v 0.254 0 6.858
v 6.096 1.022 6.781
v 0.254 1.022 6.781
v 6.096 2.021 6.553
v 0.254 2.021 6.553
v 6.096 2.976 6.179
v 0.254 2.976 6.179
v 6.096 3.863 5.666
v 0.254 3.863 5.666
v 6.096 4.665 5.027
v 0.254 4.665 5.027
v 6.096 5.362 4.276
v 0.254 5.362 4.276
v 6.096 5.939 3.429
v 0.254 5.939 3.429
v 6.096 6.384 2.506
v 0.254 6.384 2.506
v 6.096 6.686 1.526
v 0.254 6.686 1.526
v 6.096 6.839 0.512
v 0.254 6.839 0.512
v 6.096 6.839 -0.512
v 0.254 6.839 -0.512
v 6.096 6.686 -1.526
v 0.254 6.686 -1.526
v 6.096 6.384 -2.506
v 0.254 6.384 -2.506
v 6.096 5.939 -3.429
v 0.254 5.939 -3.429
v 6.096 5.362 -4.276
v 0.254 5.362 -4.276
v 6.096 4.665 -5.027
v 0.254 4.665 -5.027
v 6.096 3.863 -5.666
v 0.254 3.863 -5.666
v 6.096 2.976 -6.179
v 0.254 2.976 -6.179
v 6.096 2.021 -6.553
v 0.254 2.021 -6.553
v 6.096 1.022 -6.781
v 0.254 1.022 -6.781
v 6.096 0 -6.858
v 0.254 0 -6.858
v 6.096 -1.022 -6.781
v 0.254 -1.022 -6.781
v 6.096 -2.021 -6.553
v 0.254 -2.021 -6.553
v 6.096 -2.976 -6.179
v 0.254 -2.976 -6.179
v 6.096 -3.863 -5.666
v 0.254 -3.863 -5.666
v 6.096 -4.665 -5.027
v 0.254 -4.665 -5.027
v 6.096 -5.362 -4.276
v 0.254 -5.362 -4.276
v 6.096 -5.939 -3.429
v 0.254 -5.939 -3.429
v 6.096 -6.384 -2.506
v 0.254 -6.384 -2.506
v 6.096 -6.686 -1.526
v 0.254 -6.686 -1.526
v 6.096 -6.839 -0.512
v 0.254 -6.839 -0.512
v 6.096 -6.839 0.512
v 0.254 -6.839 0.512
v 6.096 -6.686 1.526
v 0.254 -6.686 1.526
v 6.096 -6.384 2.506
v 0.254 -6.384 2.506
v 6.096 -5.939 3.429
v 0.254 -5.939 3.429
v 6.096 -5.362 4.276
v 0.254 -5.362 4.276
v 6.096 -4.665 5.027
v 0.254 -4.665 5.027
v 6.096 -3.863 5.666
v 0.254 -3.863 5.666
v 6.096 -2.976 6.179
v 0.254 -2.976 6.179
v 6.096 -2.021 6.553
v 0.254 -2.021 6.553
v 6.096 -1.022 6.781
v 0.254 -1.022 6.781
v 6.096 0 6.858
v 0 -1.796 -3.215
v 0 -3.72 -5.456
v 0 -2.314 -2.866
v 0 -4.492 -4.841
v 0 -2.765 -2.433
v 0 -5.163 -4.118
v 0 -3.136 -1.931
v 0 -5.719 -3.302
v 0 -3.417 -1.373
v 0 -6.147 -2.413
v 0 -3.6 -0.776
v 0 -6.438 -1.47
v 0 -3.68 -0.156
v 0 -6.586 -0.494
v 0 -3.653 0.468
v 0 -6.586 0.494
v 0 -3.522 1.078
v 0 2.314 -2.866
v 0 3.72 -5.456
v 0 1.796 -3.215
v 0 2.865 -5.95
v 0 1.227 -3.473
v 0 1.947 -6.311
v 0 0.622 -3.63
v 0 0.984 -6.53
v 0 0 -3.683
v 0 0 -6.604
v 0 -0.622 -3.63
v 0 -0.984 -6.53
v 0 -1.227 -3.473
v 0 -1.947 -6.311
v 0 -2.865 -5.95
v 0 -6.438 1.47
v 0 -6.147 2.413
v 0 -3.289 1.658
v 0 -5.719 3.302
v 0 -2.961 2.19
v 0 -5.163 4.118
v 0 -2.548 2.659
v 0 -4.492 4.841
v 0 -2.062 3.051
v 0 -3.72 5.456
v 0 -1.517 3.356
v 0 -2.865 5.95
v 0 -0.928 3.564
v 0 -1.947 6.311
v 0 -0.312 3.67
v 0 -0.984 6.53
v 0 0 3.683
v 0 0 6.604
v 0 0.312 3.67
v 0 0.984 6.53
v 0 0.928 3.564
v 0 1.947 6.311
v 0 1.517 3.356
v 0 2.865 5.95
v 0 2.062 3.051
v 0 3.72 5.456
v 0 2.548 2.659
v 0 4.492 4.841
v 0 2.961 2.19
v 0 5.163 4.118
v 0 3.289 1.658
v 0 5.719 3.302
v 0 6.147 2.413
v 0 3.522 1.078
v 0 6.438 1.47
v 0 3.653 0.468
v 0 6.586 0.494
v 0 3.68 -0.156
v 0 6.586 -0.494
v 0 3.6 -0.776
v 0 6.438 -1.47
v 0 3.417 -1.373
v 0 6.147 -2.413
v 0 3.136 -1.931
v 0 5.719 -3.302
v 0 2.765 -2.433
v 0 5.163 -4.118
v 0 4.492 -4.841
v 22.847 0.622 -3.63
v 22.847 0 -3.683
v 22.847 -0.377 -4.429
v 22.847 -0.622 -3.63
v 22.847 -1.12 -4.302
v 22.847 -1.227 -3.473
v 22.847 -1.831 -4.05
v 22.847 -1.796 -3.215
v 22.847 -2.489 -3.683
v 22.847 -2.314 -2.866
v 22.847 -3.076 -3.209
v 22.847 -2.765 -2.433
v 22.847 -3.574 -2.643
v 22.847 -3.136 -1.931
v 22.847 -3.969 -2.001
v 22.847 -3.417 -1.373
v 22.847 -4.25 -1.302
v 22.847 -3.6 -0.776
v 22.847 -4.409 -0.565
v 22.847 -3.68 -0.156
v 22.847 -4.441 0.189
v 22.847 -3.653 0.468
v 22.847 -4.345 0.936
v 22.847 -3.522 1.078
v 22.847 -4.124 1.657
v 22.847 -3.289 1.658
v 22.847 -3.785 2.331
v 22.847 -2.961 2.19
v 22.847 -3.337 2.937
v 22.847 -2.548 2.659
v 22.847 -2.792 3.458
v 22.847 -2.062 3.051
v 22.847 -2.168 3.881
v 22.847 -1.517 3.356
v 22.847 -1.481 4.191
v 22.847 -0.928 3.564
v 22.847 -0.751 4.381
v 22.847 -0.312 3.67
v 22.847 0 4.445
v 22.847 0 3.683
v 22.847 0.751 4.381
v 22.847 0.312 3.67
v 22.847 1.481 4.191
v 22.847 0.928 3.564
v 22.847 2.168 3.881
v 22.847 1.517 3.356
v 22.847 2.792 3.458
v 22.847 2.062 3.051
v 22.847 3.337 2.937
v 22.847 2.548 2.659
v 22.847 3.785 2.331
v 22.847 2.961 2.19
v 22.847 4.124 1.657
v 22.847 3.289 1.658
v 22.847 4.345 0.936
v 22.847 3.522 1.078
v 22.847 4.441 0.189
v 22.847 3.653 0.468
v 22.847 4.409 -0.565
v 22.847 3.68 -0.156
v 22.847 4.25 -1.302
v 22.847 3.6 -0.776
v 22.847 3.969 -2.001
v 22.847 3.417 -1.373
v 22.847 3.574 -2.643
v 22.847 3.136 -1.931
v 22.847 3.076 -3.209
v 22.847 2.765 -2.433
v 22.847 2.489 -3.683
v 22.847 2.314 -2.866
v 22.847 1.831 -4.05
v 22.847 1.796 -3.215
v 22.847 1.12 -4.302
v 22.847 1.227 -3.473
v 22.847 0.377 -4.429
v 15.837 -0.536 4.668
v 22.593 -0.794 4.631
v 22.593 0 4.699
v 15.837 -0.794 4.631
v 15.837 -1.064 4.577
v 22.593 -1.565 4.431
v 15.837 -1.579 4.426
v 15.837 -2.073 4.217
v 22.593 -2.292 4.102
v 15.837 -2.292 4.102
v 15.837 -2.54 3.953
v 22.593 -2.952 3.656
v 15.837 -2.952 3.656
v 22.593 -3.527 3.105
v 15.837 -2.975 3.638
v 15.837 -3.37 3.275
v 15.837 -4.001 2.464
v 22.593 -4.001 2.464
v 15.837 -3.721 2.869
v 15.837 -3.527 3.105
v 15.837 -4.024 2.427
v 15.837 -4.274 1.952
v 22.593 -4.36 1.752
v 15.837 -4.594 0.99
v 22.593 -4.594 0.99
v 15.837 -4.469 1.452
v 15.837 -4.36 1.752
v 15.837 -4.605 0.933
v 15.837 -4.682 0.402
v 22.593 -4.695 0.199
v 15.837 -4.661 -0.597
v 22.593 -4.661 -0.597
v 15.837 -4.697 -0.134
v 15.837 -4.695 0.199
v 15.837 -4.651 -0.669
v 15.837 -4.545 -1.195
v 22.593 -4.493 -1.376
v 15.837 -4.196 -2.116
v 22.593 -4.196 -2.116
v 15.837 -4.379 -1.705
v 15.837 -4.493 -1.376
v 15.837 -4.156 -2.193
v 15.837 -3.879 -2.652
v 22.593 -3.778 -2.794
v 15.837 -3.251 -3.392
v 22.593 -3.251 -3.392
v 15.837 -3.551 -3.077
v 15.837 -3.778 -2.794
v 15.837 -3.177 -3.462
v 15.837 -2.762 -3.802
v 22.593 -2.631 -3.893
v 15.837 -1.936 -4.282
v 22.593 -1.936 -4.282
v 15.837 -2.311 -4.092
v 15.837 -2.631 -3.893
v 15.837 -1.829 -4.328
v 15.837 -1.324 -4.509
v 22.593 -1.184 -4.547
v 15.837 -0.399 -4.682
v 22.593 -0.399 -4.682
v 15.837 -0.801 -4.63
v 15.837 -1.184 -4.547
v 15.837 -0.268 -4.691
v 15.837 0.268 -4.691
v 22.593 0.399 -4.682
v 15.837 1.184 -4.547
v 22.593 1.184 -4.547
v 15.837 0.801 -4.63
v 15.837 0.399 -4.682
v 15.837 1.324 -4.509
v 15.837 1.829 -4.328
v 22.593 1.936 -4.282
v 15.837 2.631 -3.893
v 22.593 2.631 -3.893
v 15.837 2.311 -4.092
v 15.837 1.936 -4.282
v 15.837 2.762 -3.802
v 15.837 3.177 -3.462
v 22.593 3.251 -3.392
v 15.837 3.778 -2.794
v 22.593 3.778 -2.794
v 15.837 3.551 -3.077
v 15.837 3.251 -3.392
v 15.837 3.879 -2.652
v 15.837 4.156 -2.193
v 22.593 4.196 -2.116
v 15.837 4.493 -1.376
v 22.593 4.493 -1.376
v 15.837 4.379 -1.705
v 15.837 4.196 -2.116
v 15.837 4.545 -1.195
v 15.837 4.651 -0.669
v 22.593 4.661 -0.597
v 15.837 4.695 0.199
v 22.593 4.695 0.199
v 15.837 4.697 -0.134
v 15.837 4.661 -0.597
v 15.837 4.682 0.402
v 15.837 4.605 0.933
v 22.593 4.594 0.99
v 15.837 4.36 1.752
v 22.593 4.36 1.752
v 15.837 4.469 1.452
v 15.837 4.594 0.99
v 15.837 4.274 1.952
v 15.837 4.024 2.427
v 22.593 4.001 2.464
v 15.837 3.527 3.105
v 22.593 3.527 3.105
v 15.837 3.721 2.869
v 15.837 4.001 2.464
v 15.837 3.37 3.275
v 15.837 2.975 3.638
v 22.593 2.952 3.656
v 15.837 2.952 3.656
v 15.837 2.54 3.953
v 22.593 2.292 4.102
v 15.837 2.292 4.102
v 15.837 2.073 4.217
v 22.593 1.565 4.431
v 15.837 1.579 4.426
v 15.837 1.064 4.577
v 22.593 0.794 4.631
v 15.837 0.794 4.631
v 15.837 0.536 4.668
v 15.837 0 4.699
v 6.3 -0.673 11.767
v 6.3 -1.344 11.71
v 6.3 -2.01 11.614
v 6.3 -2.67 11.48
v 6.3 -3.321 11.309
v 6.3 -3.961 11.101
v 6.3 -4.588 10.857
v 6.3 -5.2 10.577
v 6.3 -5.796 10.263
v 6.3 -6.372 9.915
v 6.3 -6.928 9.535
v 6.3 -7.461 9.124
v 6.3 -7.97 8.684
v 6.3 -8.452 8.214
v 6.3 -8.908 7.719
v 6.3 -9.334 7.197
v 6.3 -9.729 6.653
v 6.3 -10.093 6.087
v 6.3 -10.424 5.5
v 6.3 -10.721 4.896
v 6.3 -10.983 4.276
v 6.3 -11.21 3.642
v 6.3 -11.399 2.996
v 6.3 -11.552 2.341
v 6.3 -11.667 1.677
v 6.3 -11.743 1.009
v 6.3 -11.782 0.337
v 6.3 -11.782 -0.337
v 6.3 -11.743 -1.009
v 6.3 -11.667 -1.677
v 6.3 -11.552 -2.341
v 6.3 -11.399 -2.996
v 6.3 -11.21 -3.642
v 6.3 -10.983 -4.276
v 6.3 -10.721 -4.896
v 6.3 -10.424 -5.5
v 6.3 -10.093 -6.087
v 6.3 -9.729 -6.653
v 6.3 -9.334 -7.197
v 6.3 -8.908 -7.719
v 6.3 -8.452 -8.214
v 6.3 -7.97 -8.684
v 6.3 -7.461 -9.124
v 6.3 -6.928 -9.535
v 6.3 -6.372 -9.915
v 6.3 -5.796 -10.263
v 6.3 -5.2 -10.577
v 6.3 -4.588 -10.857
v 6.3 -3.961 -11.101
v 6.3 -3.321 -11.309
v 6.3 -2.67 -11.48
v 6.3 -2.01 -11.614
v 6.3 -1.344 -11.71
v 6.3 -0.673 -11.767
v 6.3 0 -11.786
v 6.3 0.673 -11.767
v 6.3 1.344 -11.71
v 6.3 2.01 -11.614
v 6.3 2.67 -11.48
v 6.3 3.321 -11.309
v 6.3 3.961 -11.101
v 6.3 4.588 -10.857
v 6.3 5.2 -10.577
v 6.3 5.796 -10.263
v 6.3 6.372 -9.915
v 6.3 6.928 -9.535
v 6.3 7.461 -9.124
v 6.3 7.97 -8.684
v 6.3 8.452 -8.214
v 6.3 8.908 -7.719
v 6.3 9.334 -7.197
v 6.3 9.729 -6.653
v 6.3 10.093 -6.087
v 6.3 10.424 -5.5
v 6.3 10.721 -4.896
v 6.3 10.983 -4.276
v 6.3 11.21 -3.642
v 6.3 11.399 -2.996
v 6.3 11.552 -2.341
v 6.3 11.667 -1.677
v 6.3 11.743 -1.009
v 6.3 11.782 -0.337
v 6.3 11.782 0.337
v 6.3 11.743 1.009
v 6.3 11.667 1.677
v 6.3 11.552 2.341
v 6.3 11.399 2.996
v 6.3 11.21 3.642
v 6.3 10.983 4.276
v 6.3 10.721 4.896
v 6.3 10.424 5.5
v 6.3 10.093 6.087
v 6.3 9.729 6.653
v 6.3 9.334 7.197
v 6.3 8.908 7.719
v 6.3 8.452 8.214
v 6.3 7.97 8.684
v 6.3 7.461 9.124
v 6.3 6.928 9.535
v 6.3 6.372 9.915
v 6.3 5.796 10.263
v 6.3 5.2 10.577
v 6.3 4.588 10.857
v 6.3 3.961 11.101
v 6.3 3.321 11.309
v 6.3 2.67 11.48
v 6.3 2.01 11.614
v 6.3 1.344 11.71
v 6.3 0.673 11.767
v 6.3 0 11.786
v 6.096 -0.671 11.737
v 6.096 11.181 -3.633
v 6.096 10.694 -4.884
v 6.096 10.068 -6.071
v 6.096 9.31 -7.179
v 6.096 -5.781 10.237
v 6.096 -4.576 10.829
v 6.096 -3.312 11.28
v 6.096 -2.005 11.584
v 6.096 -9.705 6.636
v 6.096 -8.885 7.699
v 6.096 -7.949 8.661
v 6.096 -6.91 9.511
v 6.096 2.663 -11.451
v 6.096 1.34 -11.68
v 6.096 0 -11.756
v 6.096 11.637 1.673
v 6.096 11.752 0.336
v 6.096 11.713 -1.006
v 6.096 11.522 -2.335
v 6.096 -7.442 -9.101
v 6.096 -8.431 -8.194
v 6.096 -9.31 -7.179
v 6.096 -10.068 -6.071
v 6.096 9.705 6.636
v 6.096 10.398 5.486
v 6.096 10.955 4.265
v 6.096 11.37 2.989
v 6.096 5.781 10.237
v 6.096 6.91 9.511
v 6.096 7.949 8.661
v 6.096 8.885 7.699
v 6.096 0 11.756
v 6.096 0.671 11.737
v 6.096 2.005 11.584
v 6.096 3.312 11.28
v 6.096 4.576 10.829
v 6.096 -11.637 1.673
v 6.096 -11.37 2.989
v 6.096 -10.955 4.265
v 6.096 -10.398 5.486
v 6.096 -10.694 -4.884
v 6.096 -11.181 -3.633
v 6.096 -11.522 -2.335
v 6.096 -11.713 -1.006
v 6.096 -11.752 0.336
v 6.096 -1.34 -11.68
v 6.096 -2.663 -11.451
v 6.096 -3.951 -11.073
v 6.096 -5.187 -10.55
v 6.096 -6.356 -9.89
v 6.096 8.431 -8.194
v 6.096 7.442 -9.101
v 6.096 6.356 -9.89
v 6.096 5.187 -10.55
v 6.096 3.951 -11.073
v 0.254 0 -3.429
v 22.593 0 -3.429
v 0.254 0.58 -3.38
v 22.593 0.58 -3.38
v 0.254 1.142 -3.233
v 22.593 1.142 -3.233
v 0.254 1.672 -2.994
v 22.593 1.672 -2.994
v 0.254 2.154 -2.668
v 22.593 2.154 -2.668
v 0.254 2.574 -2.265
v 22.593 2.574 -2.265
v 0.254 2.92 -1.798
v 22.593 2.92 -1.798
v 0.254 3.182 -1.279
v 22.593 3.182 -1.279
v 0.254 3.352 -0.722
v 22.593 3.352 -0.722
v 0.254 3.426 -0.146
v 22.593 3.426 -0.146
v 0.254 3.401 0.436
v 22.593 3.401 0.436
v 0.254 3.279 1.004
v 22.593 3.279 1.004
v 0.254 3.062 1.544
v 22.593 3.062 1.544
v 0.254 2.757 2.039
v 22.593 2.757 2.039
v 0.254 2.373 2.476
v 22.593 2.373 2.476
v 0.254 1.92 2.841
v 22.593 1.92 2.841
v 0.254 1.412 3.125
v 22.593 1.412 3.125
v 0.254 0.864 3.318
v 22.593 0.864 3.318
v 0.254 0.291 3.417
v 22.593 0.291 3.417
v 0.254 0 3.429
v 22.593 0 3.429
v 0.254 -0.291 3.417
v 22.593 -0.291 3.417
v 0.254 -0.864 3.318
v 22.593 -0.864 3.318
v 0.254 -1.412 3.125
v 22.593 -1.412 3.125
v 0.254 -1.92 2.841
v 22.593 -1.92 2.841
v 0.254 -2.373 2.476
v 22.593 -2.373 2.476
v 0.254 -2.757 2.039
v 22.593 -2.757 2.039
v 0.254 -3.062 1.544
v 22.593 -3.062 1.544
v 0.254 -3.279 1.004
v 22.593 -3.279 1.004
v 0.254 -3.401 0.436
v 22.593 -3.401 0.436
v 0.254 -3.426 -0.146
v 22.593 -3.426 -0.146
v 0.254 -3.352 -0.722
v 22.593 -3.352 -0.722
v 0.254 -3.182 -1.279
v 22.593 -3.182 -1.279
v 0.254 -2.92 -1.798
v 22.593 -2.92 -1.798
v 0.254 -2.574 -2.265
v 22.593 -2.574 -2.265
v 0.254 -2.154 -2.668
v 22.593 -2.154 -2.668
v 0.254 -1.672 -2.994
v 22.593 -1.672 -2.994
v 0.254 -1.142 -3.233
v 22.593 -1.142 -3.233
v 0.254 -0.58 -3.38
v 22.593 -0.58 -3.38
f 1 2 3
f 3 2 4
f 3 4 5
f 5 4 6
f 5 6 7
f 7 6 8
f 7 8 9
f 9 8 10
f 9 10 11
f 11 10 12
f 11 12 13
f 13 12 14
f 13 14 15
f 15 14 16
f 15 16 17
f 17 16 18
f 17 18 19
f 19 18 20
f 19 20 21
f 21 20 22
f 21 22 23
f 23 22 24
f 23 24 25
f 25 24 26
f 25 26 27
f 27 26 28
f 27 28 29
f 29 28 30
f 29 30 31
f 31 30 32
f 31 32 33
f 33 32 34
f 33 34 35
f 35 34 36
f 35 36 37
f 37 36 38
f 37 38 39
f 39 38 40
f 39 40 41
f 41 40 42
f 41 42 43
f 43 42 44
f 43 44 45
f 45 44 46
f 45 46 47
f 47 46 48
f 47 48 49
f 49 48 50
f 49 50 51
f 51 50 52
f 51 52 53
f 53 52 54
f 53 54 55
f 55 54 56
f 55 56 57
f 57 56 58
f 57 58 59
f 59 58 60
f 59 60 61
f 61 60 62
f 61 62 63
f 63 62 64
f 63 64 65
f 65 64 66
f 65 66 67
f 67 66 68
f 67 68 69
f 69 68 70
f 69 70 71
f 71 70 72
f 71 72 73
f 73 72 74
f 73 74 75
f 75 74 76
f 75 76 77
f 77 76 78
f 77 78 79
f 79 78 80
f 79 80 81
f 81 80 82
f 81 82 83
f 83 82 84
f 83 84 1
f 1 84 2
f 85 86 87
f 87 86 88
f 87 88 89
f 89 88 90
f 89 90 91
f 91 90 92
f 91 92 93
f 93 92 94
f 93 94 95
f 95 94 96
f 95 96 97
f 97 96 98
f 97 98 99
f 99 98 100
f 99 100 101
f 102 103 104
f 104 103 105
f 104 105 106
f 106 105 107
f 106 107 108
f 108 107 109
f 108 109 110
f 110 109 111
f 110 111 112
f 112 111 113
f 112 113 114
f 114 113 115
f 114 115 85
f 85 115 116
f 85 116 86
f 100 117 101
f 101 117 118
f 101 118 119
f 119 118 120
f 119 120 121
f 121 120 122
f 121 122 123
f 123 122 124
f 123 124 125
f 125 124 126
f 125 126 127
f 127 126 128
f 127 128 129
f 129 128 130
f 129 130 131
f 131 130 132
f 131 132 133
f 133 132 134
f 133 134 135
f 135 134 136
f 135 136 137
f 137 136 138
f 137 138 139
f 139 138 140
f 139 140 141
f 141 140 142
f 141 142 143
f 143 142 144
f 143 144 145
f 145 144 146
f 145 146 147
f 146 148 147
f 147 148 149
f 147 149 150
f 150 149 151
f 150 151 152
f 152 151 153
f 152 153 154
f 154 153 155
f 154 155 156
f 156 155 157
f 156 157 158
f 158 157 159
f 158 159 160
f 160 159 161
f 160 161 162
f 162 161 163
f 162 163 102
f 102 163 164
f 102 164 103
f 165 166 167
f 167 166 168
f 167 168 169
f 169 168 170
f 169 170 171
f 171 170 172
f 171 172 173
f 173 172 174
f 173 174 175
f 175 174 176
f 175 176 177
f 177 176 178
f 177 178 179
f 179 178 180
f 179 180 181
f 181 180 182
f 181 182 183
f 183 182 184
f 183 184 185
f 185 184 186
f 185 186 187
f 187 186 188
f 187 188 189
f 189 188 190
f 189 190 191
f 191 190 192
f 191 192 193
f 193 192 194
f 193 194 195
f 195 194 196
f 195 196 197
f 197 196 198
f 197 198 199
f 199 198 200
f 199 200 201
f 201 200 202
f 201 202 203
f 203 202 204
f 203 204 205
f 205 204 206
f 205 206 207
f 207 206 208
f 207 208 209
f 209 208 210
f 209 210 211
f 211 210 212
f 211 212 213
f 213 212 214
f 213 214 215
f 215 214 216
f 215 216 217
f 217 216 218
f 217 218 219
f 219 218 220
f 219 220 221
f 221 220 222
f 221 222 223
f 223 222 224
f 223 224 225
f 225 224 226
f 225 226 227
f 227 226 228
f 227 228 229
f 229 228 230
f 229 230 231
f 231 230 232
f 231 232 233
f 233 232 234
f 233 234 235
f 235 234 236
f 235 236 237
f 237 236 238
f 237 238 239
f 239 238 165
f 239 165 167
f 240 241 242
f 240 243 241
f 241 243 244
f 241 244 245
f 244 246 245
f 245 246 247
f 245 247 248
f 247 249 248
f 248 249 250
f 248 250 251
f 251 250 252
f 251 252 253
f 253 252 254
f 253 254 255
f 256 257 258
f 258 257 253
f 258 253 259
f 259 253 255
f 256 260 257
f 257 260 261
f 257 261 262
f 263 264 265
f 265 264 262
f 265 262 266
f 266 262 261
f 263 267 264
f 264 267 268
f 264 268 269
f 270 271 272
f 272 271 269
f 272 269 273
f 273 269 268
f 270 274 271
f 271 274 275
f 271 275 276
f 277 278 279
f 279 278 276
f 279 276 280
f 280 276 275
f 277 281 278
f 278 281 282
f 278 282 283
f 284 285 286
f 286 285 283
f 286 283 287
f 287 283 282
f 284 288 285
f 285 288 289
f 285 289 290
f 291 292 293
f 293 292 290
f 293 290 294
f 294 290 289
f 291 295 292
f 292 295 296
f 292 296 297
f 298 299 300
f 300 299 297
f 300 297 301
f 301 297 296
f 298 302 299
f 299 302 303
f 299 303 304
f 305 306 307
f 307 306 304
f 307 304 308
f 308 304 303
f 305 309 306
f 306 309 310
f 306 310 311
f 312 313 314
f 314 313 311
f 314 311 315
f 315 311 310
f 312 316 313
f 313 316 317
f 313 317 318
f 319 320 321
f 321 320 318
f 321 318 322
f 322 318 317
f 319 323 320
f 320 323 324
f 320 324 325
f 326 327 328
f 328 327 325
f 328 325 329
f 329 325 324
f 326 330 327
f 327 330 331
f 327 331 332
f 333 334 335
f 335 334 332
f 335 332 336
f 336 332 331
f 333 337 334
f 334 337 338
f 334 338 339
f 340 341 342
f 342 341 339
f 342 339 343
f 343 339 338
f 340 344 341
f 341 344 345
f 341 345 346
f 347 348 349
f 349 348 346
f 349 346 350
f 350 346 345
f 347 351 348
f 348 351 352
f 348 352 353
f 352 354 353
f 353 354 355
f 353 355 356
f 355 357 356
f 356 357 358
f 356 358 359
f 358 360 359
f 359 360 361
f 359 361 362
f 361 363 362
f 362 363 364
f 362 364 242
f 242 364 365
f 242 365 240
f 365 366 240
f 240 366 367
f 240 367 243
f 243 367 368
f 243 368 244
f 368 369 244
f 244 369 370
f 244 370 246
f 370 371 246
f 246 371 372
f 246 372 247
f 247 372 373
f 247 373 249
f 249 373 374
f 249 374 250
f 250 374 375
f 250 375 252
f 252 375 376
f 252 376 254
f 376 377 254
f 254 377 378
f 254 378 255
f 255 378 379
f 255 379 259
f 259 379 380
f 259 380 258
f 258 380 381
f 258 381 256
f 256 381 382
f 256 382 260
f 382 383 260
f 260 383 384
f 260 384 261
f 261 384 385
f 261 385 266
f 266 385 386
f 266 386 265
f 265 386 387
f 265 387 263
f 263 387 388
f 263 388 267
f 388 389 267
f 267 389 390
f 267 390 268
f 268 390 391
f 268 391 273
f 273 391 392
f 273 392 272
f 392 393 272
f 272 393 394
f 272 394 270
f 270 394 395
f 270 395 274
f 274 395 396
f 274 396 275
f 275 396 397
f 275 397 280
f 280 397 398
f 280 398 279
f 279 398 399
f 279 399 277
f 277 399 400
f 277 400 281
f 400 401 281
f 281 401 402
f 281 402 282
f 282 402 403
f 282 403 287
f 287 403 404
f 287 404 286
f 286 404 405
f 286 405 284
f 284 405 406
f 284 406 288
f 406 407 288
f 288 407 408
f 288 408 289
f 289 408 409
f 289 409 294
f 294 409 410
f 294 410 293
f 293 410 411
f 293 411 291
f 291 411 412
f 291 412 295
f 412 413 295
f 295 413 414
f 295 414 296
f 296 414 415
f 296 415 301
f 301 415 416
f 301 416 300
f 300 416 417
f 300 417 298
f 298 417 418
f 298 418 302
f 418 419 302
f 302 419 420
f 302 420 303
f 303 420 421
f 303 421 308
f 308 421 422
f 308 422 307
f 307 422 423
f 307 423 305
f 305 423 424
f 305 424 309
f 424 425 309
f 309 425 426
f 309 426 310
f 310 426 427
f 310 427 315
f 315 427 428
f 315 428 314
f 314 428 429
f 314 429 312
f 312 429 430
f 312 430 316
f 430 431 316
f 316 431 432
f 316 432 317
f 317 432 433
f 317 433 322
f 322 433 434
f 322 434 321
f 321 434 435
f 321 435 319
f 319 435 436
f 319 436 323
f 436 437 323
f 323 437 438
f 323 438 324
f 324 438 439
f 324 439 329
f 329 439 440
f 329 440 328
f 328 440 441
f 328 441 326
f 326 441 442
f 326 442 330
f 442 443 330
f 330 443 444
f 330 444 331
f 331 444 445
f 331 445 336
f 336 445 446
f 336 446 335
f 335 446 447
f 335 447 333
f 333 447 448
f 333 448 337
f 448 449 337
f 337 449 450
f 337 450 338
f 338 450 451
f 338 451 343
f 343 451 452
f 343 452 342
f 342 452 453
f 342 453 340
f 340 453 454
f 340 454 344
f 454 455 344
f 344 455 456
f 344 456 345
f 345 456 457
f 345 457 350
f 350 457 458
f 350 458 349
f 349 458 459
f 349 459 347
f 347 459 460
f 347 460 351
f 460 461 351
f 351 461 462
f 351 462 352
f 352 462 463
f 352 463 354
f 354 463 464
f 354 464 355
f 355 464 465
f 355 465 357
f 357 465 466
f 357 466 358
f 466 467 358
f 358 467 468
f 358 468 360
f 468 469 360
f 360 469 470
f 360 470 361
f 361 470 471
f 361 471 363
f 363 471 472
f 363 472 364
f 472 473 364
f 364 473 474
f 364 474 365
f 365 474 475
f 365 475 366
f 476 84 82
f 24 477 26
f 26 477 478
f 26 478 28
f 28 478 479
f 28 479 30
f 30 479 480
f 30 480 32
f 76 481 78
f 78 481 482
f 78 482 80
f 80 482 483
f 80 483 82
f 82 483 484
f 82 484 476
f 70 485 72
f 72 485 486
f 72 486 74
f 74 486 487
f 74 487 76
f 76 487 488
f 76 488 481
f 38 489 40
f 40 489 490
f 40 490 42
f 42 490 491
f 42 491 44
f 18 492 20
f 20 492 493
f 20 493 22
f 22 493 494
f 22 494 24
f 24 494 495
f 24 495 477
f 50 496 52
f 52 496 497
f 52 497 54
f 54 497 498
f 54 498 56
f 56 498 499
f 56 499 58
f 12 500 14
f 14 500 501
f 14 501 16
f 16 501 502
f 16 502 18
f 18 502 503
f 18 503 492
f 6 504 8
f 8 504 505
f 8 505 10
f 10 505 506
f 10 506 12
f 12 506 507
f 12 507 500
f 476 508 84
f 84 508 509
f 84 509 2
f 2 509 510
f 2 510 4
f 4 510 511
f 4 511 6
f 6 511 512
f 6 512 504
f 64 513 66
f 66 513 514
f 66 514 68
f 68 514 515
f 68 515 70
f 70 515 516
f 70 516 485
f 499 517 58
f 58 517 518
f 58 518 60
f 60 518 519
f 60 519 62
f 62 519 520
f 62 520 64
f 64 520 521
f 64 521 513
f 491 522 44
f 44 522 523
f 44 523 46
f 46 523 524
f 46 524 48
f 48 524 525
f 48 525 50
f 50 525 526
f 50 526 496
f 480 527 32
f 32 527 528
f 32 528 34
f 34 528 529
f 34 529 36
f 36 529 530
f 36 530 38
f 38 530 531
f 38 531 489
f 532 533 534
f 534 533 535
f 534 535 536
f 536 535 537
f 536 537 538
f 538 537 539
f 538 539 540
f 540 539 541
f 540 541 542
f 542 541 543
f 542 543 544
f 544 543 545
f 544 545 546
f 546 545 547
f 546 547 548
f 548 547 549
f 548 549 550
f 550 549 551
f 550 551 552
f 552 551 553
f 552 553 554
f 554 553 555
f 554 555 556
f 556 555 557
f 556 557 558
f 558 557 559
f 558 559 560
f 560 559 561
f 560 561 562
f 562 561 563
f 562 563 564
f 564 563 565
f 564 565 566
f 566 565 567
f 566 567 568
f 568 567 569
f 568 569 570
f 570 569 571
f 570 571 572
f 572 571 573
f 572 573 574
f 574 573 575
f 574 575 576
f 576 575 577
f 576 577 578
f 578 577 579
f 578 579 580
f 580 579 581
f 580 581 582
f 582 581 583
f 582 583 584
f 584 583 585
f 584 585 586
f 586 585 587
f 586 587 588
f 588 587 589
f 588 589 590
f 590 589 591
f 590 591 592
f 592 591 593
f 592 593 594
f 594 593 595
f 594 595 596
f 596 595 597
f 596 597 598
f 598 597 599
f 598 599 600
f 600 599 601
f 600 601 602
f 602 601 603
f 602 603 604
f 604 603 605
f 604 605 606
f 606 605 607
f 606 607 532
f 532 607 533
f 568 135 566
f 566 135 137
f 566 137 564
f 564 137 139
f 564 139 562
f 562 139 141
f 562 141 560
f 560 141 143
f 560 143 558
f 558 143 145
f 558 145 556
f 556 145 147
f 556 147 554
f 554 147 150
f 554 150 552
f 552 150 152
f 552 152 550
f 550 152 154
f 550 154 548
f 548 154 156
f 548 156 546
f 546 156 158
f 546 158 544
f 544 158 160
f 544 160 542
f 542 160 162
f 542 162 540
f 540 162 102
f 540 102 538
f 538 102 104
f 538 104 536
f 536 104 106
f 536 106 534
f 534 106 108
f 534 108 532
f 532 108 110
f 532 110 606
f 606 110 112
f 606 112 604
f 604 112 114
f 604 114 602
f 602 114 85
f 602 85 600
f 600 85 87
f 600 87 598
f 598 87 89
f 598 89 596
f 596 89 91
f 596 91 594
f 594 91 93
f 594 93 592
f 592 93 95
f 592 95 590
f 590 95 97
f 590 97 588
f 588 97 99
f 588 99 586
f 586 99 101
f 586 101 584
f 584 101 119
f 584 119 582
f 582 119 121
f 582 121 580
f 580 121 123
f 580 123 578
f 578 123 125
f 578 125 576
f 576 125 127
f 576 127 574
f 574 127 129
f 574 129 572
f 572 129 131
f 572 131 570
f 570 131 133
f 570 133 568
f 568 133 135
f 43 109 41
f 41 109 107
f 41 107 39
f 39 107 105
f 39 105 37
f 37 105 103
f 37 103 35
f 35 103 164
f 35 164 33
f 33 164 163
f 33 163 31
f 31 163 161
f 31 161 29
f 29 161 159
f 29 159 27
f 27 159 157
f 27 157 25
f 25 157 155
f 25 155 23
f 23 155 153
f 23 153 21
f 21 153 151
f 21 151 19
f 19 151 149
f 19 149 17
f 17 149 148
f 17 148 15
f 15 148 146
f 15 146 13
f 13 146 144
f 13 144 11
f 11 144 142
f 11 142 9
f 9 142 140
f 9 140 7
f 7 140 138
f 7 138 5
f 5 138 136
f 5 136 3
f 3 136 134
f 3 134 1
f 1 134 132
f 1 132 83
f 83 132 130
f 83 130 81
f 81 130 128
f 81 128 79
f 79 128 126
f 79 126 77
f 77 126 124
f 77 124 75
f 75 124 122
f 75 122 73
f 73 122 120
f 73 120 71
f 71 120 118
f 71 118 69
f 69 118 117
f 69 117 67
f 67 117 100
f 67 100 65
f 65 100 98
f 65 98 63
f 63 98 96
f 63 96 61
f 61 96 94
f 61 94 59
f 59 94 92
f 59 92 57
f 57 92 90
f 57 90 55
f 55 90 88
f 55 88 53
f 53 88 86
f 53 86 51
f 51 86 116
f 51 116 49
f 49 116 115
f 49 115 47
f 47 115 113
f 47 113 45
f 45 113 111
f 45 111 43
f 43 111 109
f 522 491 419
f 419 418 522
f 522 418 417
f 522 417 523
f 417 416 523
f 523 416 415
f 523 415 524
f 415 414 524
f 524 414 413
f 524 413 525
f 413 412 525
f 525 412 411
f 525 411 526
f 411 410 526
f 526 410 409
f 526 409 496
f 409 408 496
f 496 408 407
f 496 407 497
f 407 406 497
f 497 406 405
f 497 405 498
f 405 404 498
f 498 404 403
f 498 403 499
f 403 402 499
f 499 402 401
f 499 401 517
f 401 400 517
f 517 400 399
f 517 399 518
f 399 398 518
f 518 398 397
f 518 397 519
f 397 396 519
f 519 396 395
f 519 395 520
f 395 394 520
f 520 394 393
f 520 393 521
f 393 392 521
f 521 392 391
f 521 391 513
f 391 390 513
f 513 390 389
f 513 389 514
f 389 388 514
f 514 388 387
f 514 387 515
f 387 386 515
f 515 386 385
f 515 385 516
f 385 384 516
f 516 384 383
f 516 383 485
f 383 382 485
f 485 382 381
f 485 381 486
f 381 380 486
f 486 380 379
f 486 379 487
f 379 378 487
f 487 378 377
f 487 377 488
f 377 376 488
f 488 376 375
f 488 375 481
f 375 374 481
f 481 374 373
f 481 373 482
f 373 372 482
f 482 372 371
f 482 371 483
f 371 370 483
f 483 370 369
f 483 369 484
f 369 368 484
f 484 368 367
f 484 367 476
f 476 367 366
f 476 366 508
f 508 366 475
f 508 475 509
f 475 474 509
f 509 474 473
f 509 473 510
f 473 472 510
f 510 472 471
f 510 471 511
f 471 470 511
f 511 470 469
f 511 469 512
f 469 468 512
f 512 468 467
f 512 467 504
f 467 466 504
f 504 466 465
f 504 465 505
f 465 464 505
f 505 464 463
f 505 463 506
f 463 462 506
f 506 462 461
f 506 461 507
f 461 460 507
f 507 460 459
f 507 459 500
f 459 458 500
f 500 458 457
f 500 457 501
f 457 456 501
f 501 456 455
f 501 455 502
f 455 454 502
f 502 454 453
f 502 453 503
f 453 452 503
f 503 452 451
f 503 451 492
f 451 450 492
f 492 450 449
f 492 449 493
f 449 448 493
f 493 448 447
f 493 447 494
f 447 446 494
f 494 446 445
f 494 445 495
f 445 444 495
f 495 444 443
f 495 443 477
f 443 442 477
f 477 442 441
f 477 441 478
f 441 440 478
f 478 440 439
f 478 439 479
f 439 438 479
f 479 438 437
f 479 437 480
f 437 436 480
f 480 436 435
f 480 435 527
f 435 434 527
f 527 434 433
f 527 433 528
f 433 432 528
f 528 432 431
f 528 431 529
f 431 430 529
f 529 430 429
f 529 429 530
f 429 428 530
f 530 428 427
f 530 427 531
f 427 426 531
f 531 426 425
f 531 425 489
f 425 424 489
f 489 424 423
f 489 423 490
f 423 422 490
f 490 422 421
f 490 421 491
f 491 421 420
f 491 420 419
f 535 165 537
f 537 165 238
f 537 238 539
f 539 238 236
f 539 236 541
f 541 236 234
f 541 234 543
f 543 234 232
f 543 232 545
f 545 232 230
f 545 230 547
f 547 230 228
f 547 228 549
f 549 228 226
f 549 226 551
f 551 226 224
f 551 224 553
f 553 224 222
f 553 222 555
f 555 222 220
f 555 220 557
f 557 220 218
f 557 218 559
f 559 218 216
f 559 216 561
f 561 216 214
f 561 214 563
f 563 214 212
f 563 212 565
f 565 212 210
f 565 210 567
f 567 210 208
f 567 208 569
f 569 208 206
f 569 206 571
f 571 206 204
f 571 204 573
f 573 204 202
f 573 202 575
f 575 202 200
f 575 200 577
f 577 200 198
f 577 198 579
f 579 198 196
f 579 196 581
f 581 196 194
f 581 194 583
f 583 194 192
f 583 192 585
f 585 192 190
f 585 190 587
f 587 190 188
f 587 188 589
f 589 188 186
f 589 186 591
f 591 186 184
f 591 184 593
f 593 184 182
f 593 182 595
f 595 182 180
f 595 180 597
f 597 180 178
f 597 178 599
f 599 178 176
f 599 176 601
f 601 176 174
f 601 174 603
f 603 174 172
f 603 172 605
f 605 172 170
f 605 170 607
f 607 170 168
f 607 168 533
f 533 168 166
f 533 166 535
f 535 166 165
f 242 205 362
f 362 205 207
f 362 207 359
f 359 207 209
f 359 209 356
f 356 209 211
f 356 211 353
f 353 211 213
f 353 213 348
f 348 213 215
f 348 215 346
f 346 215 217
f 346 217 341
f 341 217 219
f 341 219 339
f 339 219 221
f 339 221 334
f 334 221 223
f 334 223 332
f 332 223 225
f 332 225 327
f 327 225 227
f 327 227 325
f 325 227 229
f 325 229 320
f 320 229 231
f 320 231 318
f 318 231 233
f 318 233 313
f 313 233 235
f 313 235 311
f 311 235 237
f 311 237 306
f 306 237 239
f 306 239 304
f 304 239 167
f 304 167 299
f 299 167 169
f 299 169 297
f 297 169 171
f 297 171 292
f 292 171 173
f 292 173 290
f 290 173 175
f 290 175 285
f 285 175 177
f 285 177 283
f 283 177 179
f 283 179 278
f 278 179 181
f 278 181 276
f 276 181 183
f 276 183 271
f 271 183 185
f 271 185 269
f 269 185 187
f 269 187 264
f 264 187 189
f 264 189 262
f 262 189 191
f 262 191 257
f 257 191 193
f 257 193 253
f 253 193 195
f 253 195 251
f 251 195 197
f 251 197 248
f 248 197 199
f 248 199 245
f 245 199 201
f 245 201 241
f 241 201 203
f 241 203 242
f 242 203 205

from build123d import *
from OCP.BRepFilletAPI import BRepFilletAPI_MakeChamfer

# Parameters (mm, degrees)
SKETCH1_W          = 6.096
SKETCH1_H          = 6.858
SKETCH2_R          = 3.429
CUT_EXTRUDE1_DEPTH = 29.408287616
CHAMFER1_SIZE      = 0.254
CHAMFER1_SIZE2     = 0.181544311


with BuildPart() as part:
    # Sketch1 → Revolve1 (revolve)
    with BuildSketch(Plane.XY, mode=Mode.PRIVATE) as revolve1_sk:
        with Locations((3.048, 3.429)):
            Rectangle(SKETCH1_W, SKETCH1_H)
        Polygon((6.096, 6.858), (6.096, 0), (15.8369, 0), (15.8369, 4.699), (6.096, 11.938), align=None)
        Polygon((15.8369, 4.699), (15.8369, 0), (17.1069, 0), (18.6182, 0), (20.1295, 0), (21.3995, 0), (22.8473, 0), (22.8473, 4.699), align=None)
    revolve(revolve1_sk.sketch.rotate(Axis((6.096, 0, 0), (1, 0, 0)), 90), axis=Axis((6.096, 0, 0), (1, 0, 0)))

    # Sketch2 → Cut-Extrude1 (cut, through all)
    with BuildSketch(Plane(origin=(22.8473, 0, 0), x_dir=(0, 0, -1), z_dir=(1, 0, 0))):
        Circle(SKETCH2_R)
    extrude(amount=-CUT_EXTRUDE1_DEPTH, mode=Mode.SUBTRACT)

    # Chamfer1: one chamfer whose edges measure the first distance from different faces: ONE call of the kernel's chamfer builder (chamfer() names one face for all edges)
    chamfer1_edges_1 = [part.edges().sort_by_distance(p)[0] for p in [
        (0, 0, -6.858),
        (0, 0, 3.429),
        (22.8473, 0, 3.429),
        (22.8473, 0, -4.699),
    ]]
    chamfer1_edges_2 = [part.edges().sort_by_distance(p)[0] for p in [
        (6.096, 0, -11.938),
    ]]
    chamfer1_side_2 = [part.faces().sort_by_distance(p)[0] for p in [
        (10.96645, 0, -8.3185),
    ]]
    chamfer1 = BRepFilletAPI_MakeChamfer(part.part.solid().wrapped)
    for e in chamfer1_edges_1:
        chamfer1.Add(CHAMFER1_SIZE, e.wrapped)
    for e in chamfer1_edges_2:
        chamfer1.Add(CHAMFER1_SIZE, CHAMFER1_SIZE2, e.wrapped, chamfer1_side_2[0].wrapped)  # the first distance lies on this face
    add(Compound.cast(chamfer1.Shape()), mode=Mode.REPLACE)


solid = part.part
